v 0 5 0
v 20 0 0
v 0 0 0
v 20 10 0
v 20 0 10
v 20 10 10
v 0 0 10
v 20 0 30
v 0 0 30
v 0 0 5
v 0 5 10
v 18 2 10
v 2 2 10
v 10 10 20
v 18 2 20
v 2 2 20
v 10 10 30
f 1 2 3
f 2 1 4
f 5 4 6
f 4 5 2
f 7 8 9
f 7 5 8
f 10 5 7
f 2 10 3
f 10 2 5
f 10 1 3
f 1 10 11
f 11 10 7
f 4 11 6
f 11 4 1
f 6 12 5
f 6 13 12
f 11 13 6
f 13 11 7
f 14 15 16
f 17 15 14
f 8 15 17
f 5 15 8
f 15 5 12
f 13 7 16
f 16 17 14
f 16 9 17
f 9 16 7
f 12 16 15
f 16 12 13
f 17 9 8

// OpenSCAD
// Define the wedge block
module wedge_block() {
    difference() {
        // Base block
        linear_extrude(height = 10)
            polygon(points = [[0, 0], [20, 0], [20, 10], [0, 5]]);
        // Cutout to create the slanted top
        translate([0, 0, 5])
            rotate([0, 180, 0]) // Adjusted rotation to match original model
            linear_extrude(height = 10)
                polygon(points = [[0, 0], [20, 0], [20, 10]]);
    }
}

// Define the hollow triangular prism
module hollow_triangular_prism() {
    difference() {
        // Outer triangular prism
        translate([0, 0, 0]) // Adjusted position to match original model
            rotate([0, 0, 0]) // Adjusted rotation to match original model
            linear_extrude(height = 10)
                polygon(points = [[0, 0], [20, 0], [10, 10]]);
        // Inner triangular cutout
        translate([2, 2, 0]) // Adjusted position to match original model
            rotate([0, 0, 0]) // Adjusted rotation to match original model
            linear_extrude(height = 10)
                polygon(points = [[0, 0], [16, 0], [8, 8]]);
    }
}

// Define the solid triangular prism
module solid_triangular_prism() {
    translate([0, 0, 0]) // Adjusted position to match original model
    rotate([0, 0, 0]) // Adjusted rotation to match original model
    linear_extrude(height = 10)
        polygon(points = [[0, 0], [20, 0], [10, 10]]);
}

// Assemble the model
module flexible_coupling() {
    // Layer 3: Wedge block
    translate([0, 0, 0])
        wedge_block();
    // Layer 2: Hollow triangular prism
    translate([0, 0, 10])
        hollow_triangular_prism();
    // Layer 1: Solid triangular prism
    translate([0, 0, 20])
        solid_triangular_prism();
}

// Render the model
flexible_coupling();
